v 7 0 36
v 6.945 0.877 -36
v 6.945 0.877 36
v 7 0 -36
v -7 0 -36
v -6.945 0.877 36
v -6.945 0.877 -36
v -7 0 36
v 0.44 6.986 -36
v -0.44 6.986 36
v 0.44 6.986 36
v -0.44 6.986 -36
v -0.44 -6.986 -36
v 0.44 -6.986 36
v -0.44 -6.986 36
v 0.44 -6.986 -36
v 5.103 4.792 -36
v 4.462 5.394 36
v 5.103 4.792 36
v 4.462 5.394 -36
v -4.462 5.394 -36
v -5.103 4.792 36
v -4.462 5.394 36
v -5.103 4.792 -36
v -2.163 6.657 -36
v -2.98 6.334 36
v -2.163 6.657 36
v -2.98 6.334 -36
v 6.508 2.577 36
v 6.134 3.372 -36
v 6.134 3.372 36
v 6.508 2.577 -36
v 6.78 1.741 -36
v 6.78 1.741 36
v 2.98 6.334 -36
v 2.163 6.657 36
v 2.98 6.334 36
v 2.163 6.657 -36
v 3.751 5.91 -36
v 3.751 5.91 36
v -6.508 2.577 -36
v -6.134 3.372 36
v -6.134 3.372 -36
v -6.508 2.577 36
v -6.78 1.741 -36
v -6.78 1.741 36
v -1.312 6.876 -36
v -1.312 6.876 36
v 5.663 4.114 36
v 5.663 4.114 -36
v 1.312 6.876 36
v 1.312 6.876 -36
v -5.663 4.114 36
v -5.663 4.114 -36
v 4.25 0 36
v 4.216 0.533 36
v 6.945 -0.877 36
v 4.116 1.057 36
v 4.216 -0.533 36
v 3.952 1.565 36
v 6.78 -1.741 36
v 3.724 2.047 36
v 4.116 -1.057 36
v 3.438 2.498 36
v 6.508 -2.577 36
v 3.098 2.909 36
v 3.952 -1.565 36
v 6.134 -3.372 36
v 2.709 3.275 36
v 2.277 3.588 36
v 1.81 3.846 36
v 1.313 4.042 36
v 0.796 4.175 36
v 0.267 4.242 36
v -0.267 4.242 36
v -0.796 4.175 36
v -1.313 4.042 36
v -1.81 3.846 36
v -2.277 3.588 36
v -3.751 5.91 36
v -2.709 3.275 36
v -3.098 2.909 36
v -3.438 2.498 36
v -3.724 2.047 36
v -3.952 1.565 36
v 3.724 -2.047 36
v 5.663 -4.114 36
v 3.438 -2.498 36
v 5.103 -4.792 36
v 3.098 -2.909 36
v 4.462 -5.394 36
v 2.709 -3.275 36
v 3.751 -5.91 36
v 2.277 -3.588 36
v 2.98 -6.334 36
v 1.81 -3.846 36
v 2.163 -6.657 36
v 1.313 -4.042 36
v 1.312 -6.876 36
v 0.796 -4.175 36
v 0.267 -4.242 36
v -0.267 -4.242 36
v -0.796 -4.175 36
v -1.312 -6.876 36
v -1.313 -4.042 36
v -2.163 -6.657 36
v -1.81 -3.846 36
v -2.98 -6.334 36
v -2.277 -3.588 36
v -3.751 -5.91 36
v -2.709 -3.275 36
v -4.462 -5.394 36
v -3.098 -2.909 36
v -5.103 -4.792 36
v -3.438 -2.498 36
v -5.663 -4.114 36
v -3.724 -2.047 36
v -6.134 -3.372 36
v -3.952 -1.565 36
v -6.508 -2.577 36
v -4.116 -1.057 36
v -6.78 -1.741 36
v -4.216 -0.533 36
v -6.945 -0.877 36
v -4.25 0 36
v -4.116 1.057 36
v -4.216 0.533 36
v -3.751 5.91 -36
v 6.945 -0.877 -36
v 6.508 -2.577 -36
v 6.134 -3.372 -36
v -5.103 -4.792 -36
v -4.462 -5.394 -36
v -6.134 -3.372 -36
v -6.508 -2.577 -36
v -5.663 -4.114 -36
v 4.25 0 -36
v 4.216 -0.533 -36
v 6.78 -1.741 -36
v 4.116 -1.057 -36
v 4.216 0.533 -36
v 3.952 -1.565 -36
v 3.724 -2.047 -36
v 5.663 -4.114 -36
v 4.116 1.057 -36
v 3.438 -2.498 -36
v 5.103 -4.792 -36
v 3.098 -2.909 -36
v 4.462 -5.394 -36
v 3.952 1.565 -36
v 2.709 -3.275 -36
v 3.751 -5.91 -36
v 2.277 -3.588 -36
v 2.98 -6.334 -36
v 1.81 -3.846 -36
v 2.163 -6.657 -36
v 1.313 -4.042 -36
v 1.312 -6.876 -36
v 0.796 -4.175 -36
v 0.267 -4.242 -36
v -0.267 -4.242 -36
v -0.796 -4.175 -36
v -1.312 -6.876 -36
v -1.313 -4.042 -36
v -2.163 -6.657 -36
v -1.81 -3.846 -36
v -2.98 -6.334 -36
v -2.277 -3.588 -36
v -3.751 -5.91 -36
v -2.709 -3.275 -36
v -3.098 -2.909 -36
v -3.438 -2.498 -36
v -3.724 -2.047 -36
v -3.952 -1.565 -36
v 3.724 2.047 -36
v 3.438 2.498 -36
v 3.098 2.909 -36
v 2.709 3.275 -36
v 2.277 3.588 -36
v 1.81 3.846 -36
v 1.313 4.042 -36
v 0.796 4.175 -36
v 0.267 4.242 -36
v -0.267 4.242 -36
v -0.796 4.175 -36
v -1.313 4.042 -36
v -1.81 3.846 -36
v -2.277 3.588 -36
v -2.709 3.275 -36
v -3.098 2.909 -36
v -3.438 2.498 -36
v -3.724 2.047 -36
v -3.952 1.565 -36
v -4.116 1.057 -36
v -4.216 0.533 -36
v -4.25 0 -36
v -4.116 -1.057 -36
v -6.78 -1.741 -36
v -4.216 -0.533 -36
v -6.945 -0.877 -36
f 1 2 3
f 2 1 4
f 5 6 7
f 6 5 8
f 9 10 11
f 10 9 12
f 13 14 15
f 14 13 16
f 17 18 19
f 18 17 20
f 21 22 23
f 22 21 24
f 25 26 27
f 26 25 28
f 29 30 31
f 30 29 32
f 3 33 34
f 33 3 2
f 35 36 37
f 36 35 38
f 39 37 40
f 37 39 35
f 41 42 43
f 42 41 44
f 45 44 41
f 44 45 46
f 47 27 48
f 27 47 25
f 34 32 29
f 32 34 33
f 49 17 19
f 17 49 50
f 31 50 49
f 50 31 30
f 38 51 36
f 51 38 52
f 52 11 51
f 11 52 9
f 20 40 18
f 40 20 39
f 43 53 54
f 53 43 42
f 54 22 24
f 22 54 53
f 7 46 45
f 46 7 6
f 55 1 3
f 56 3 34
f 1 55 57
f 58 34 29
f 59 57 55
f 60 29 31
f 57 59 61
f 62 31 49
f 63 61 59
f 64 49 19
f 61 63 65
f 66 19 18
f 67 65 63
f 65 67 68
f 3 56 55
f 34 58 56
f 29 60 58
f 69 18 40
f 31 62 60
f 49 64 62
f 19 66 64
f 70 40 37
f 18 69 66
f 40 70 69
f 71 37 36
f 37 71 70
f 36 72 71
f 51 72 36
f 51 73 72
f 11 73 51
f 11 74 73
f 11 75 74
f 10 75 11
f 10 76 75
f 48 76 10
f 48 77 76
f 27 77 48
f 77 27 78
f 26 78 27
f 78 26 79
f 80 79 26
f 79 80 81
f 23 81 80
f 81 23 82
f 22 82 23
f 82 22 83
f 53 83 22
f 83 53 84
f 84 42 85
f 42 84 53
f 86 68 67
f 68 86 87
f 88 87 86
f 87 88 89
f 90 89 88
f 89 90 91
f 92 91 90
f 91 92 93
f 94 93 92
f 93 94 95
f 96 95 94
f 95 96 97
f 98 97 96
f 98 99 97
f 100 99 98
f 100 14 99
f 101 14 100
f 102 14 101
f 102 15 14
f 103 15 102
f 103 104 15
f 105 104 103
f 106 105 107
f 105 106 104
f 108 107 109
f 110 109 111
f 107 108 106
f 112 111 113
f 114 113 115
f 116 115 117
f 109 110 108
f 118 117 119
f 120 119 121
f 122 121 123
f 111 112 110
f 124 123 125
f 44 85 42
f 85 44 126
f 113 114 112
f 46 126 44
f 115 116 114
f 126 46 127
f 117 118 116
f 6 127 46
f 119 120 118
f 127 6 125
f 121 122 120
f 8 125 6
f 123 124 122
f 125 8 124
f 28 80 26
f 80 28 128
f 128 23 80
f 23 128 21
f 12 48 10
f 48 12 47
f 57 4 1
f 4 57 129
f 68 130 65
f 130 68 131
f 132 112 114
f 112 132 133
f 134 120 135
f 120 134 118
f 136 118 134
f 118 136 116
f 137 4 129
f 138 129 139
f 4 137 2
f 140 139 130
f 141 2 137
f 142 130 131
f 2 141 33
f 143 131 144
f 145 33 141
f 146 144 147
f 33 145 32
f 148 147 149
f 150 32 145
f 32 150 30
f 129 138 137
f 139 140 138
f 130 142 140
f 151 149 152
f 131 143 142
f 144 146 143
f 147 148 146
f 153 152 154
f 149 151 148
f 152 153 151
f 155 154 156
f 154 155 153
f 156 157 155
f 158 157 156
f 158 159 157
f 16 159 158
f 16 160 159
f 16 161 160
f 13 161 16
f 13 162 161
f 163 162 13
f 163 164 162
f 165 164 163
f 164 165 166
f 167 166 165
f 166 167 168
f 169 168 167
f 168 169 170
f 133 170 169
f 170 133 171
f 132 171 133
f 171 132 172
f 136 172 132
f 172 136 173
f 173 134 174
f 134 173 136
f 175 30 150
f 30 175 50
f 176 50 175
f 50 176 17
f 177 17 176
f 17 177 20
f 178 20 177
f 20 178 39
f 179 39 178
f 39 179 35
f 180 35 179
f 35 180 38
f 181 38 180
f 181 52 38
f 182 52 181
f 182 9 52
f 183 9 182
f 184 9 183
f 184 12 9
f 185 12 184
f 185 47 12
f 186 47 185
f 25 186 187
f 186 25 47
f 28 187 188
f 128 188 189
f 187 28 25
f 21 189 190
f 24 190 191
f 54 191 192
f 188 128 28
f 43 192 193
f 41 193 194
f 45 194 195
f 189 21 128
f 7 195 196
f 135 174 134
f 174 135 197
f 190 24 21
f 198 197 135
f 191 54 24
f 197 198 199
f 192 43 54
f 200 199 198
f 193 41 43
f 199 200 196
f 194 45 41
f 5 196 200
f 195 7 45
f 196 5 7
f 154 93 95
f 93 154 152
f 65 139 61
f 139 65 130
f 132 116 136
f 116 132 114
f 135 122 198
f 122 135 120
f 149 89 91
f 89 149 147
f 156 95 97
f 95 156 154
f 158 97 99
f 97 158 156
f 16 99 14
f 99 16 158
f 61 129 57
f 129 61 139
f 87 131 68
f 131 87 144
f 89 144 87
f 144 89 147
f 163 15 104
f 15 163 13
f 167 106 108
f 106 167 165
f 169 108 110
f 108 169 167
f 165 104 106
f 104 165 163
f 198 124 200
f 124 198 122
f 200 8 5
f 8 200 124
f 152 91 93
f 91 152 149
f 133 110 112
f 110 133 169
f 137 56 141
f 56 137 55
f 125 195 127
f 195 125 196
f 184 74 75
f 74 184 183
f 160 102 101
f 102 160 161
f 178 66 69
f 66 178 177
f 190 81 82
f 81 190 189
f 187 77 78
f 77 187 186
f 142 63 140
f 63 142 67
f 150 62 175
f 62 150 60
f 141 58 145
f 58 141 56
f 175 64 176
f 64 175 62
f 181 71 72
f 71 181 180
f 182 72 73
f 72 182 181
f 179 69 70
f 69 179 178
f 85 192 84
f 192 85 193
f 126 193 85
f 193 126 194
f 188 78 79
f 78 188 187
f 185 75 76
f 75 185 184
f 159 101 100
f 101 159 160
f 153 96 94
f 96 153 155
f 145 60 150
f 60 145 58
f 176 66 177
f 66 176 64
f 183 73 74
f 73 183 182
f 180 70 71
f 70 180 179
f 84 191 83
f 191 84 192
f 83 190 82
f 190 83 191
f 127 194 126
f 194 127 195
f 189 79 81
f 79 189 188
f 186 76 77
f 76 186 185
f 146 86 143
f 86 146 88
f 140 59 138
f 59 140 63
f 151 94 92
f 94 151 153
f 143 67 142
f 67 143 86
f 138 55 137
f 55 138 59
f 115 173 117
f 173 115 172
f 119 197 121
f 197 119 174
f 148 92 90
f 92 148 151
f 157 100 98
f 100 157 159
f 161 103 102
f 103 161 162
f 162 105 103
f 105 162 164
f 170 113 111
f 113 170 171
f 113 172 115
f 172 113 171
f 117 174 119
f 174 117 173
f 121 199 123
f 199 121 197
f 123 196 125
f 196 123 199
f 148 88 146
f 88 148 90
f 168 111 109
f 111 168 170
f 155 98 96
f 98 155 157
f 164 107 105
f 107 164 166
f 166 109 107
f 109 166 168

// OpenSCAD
$fn = 50;


difference() {
	union() {
		translate(v = [0, 0, -36.0000000000]) {
			cylinder(h = 72, r = 7.0000000000);
		}
	}
	union() {
		translate(v = [0, 0, -100.0000000000]) {
			cylinder(h = 200, r = 4.2500000000);
		}
	}
}
